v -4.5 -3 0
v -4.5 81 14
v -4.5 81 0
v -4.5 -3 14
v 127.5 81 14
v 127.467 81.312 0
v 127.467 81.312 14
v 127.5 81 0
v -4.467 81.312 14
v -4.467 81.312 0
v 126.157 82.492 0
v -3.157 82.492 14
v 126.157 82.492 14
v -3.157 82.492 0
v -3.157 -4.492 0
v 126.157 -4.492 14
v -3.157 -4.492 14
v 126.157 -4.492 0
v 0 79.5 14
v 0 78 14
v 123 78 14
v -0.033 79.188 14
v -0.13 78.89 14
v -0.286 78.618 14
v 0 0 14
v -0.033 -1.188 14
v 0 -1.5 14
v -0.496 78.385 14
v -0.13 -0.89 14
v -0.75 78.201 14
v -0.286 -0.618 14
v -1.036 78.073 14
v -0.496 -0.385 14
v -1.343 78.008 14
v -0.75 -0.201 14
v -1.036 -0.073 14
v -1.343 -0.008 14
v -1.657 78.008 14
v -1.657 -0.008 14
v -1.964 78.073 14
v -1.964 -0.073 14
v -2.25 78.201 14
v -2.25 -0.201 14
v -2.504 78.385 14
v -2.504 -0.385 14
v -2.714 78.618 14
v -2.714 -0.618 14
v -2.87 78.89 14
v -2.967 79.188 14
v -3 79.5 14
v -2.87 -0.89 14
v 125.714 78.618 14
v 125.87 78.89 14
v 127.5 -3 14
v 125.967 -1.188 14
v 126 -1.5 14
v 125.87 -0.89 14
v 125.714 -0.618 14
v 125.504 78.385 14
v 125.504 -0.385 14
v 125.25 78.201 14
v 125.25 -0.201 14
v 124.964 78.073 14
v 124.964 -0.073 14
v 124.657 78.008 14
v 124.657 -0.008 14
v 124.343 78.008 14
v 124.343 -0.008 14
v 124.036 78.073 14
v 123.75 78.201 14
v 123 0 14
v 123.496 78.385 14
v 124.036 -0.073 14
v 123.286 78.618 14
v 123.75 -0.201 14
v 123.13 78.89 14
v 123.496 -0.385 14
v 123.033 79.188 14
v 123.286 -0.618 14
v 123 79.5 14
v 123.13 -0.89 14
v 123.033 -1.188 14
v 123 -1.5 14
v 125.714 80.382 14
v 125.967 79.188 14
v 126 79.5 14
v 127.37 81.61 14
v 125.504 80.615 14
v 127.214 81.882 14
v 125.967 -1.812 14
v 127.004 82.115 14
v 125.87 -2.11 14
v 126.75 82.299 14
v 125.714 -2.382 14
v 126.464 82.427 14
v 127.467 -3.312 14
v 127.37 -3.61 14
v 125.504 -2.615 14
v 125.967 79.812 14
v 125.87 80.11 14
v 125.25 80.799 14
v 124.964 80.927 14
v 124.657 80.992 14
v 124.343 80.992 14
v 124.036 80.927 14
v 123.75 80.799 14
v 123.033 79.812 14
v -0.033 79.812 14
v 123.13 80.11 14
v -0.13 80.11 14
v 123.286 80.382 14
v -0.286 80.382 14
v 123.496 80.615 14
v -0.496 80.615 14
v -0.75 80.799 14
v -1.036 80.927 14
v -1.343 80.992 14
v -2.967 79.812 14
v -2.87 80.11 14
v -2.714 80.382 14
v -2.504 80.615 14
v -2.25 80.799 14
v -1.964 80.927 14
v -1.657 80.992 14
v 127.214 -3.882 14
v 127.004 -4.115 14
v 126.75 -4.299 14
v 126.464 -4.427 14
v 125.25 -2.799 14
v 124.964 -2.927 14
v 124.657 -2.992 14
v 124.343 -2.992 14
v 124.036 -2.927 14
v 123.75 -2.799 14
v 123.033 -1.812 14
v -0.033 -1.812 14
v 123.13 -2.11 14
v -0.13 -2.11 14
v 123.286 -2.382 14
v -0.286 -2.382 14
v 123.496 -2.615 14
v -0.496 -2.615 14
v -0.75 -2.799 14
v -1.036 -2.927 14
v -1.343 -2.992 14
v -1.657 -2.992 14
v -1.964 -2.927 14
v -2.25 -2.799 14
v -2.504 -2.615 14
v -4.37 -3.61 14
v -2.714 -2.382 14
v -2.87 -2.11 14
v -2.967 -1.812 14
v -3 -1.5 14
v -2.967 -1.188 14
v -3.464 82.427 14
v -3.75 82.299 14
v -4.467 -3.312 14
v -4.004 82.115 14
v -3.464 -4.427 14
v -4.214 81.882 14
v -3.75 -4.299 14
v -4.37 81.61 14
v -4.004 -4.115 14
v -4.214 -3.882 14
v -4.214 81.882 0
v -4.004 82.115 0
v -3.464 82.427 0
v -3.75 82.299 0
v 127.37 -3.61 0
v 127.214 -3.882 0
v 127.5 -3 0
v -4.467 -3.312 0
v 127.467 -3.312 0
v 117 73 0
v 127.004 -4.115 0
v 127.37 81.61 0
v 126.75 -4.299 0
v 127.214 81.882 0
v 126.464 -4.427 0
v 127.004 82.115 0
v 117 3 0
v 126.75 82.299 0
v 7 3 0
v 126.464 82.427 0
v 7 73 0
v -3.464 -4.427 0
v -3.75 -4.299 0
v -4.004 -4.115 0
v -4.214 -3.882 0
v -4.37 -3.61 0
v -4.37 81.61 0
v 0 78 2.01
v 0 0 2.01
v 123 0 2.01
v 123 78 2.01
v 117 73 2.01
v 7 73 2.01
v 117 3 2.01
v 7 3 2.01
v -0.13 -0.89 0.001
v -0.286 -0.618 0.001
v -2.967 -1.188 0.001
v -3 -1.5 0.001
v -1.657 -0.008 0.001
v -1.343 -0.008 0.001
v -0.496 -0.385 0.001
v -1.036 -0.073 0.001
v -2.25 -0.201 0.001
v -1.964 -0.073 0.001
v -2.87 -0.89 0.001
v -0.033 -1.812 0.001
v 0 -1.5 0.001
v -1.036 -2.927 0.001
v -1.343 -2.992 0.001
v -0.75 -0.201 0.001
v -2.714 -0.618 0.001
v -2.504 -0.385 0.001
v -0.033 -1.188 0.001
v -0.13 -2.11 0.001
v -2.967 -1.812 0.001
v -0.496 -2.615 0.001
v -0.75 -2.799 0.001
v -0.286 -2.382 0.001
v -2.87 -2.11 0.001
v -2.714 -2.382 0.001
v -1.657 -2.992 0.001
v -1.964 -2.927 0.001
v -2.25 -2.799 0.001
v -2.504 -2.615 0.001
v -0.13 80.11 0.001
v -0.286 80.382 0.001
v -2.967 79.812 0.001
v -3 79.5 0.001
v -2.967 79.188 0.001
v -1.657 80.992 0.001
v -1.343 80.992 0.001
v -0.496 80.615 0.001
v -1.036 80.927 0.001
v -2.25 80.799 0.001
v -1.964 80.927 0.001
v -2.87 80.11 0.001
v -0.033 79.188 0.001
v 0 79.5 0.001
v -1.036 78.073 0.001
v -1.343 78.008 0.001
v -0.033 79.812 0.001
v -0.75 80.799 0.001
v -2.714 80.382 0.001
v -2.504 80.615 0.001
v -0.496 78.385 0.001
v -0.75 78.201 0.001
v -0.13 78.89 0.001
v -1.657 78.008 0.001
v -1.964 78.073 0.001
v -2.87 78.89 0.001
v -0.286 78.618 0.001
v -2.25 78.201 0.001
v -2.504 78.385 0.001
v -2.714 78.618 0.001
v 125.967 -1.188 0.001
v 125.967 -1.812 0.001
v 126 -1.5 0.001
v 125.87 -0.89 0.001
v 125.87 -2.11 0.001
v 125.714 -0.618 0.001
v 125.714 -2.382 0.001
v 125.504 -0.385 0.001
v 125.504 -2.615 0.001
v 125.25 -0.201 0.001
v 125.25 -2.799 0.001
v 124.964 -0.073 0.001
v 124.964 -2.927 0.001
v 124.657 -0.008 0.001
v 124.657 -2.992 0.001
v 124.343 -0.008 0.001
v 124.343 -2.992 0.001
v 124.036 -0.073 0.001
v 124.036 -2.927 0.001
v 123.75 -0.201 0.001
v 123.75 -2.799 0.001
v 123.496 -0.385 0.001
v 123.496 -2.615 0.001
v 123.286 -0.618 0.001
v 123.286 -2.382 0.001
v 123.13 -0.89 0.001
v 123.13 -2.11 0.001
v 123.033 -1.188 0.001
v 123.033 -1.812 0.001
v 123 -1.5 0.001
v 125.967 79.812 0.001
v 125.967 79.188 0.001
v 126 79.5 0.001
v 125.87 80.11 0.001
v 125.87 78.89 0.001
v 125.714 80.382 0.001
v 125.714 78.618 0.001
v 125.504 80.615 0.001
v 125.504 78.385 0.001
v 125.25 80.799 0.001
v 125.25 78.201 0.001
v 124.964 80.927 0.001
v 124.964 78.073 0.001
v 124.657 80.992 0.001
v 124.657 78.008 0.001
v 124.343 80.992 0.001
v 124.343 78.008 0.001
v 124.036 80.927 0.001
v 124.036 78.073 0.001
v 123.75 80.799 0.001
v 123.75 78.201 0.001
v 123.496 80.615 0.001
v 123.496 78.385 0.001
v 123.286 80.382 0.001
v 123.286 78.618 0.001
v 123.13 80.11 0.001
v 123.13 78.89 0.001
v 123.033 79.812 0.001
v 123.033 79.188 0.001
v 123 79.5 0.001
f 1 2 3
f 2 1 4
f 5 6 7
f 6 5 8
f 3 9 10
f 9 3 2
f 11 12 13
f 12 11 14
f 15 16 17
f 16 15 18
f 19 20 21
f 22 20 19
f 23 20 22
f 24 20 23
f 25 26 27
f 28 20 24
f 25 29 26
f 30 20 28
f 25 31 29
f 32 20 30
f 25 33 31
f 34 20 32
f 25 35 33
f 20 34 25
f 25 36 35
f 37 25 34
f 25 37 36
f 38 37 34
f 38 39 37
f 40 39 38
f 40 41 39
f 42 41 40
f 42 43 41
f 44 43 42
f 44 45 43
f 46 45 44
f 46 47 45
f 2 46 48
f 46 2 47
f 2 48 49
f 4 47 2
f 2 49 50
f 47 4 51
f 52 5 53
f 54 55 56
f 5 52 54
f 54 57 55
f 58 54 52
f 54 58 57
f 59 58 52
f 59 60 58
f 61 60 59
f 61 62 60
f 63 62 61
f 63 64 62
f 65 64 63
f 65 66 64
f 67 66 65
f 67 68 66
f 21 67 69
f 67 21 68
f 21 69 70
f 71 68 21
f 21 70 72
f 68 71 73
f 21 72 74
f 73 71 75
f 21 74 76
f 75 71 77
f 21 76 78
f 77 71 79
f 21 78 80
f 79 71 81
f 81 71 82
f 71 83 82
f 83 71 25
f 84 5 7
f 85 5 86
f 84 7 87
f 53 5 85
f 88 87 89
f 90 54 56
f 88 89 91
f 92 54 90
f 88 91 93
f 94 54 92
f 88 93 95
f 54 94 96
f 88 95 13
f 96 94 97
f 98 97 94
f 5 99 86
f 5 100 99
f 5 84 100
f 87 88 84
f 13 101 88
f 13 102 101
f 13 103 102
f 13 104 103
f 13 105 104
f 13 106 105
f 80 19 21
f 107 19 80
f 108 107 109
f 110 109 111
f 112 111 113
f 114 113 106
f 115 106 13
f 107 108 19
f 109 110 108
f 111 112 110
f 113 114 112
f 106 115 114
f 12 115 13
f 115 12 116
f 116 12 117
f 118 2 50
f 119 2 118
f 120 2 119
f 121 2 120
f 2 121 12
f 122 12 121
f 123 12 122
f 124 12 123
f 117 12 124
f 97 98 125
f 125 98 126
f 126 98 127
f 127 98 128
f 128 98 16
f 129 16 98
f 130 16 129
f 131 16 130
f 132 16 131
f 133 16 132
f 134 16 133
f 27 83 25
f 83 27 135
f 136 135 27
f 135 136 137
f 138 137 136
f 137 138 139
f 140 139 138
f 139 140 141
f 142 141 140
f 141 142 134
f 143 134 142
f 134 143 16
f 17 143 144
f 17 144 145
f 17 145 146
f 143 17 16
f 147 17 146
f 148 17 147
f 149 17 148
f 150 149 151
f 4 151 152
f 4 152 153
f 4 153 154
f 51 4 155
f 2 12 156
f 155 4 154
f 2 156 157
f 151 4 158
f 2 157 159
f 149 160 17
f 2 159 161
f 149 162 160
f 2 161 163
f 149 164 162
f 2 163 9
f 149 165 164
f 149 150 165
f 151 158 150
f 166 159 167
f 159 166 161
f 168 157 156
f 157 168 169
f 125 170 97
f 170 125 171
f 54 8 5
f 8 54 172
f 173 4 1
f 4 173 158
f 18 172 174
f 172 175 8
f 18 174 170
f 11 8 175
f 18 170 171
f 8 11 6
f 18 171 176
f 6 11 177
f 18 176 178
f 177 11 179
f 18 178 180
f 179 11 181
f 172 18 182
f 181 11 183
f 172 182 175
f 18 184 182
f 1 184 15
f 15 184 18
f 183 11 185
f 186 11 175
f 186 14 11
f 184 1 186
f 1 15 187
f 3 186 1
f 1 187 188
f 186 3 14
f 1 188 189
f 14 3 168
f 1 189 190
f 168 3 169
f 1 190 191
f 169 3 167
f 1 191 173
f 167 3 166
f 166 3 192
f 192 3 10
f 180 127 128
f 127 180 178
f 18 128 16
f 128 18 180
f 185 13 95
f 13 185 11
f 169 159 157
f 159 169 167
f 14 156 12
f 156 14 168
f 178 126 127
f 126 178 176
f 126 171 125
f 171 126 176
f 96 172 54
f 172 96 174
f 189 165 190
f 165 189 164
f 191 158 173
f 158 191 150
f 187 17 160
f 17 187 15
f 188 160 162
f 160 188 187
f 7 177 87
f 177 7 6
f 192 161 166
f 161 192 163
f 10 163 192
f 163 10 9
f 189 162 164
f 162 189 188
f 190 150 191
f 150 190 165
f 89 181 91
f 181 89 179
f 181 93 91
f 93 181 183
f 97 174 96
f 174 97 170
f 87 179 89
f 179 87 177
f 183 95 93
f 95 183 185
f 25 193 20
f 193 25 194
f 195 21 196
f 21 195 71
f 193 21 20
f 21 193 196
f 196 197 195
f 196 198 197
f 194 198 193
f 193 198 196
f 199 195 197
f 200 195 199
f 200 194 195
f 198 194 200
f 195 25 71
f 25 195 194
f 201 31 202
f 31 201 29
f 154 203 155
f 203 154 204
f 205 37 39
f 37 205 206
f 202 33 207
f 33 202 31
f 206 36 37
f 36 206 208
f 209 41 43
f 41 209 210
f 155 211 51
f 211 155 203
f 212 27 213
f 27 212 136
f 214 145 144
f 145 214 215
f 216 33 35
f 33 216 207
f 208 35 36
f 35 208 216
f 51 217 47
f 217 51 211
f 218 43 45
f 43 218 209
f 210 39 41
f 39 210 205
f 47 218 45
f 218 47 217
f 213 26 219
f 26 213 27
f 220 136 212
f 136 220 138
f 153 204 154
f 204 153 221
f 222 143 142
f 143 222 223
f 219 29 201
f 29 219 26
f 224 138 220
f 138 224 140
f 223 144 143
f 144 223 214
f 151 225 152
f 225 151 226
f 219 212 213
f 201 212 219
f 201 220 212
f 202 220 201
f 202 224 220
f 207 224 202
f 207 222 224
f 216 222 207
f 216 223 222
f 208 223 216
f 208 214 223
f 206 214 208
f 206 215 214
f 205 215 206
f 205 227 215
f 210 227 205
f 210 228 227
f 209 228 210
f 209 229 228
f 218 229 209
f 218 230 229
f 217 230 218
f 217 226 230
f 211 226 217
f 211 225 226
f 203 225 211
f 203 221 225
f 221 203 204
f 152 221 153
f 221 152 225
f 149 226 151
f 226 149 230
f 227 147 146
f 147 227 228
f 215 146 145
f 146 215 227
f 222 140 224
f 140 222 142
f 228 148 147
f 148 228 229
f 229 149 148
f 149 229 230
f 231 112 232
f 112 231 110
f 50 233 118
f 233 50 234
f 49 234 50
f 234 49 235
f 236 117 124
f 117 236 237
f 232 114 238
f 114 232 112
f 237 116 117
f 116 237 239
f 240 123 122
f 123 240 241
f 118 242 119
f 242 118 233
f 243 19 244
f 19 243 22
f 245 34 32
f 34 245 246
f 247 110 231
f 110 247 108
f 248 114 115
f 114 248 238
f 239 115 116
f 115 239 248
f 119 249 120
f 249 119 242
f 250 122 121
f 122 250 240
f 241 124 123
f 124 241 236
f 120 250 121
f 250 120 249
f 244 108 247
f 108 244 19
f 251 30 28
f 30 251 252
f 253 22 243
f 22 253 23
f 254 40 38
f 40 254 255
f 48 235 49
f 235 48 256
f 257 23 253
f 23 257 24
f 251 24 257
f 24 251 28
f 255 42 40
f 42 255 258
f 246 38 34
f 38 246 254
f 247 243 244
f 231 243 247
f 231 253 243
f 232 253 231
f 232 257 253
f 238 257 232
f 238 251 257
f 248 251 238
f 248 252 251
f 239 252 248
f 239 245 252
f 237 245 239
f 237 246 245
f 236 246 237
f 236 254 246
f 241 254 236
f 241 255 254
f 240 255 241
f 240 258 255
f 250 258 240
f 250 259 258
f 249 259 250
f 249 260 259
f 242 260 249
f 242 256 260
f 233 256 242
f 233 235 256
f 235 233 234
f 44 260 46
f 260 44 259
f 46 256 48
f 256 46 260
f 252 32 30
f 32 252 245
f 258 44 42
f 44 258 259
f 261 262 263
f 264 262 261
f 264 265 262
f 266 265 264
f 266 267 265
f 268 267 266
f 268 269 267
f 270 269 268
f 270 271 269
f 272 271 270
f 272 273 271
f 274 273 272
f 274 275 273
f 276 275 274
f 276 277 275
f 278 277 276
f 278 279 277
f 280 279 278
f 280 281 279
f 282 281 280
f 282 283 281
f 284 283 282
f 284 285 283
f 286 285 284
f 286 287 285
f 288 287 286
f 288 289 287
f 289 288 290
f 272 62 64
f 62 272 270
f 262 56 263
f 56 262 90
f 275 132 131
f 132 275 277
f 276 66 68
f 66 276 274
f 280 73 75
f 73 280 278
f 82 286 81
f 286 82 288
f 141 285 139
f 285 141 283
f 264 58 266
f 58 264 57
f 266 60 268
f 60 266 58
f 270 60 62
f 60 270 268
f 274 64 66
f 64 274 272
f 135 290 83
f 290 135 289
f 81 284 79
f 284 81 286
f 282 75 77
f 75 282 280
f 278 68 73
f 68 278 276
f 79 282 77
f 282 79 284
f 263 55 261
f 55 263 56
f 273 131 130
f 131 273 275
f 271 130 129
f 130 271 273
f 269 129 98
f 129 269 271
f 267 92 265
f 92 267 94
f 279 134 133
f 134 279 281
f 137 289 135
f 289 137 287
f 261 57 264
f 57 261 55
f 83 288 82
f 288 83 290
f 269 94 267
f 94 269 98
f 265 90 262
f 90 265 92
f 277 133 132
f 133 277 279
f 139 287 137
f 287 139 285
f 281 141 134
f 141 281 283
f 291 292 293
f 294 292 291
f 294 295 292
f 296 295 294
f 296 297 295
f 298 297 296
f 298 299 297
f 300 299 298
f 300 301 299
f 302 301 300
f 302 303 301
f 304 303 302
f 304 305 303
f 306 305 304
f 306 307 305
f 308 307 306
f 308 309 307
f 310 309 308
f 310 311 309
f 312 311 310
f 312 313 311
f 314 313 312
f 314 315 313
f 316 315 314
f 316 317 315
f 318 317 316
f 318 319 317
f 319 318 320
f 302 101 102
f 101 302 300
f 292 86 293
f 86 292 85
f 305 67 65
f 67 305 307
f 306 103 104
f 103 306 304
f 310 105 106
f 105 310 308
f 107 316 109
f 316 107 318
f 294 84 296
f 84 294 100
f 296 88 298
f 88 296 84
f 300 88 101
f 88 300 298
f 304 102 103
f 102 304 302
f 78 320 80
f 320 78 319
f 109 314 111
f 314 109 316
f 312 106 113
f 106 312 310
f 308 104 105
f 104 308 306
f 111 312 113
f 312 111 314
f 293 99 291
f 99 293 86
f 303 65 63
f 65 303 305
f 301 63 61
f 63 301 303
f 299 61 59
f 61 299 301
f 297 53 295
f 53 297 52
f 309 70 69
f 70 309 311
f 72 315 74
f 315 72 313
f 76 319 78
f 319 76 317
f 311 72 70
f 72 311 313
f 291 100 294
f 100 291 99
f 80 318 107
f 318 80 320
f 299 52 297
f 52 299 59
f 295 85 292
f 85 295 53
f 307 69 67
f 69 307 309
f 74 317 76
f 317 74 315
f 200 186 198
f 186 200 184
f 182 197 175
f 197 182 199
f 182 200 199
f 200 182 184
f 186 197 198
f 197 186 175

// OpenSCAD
$fn = 30;
inner_width = 110;
inner_length= 75+8;
inner_height= 31;
standoff_height = 3;
tier1_inner_dims  = [inner_width, inner_length, inner_height + standoff_height];
// the screen is  4.76 x 3 x 0.51 inches 

tier2_inner_dims  = [123, 78, 12];
e = 0.001;
e2 = 0.002;
bottom_shell = 2;
side_width = 3;
bore_dia = 3;

module roundedBox(dims, side_width, bore_dia, bottom_shell){
    rad = side_width/2;
    difference(){
        hull(){
            translate([-side_width, -side_width, 0])
            cylinder(d = side_width, h = dims[2] + bottom_shell);
            translate([-side_width , side_width + dims[1], 0])
            cylinder(d = side_width, h = dims[2] + bottom_shell);
            translate([side_width + dims[0], -side_width, 0])
            cylinder(d = side_width, h = dims[2] + bottom_shell);
            translate([side_width + dims[0], side_width + dims[1], 0])
            cylinder(d = side_width, h = dims[2] + bottom_shell);
        }
        
        translate([0,0,bottom_shell+.01])
        cube(dims);
        
        translate([-rad, -rad, e])
        cylinder(d = bore_dia, h = dims[2] + bottom_shell);
        translate([-rad , rad + dims[1], e])
        cylinder(d = bore_dia, h = dims[2] + bottom_shell);
        translate([rad + dims[0], -rad, e])
        cylinder(d = bore_dia, h = dims[2] + bottom_shell);
        translate([rad + dims[0], rad + dims[1], e])
        cylinder(d = bore_dia, h = dims[2] + bottom_shell);
    
    }
}



// second tier
difference(){
    union(){
        roundedBox(tier2_inner_dims,side_width, bore_dia, bottom_shell);
        
    }
    translate([7,3,-e])
    cube([110, 70, 100]);
}
